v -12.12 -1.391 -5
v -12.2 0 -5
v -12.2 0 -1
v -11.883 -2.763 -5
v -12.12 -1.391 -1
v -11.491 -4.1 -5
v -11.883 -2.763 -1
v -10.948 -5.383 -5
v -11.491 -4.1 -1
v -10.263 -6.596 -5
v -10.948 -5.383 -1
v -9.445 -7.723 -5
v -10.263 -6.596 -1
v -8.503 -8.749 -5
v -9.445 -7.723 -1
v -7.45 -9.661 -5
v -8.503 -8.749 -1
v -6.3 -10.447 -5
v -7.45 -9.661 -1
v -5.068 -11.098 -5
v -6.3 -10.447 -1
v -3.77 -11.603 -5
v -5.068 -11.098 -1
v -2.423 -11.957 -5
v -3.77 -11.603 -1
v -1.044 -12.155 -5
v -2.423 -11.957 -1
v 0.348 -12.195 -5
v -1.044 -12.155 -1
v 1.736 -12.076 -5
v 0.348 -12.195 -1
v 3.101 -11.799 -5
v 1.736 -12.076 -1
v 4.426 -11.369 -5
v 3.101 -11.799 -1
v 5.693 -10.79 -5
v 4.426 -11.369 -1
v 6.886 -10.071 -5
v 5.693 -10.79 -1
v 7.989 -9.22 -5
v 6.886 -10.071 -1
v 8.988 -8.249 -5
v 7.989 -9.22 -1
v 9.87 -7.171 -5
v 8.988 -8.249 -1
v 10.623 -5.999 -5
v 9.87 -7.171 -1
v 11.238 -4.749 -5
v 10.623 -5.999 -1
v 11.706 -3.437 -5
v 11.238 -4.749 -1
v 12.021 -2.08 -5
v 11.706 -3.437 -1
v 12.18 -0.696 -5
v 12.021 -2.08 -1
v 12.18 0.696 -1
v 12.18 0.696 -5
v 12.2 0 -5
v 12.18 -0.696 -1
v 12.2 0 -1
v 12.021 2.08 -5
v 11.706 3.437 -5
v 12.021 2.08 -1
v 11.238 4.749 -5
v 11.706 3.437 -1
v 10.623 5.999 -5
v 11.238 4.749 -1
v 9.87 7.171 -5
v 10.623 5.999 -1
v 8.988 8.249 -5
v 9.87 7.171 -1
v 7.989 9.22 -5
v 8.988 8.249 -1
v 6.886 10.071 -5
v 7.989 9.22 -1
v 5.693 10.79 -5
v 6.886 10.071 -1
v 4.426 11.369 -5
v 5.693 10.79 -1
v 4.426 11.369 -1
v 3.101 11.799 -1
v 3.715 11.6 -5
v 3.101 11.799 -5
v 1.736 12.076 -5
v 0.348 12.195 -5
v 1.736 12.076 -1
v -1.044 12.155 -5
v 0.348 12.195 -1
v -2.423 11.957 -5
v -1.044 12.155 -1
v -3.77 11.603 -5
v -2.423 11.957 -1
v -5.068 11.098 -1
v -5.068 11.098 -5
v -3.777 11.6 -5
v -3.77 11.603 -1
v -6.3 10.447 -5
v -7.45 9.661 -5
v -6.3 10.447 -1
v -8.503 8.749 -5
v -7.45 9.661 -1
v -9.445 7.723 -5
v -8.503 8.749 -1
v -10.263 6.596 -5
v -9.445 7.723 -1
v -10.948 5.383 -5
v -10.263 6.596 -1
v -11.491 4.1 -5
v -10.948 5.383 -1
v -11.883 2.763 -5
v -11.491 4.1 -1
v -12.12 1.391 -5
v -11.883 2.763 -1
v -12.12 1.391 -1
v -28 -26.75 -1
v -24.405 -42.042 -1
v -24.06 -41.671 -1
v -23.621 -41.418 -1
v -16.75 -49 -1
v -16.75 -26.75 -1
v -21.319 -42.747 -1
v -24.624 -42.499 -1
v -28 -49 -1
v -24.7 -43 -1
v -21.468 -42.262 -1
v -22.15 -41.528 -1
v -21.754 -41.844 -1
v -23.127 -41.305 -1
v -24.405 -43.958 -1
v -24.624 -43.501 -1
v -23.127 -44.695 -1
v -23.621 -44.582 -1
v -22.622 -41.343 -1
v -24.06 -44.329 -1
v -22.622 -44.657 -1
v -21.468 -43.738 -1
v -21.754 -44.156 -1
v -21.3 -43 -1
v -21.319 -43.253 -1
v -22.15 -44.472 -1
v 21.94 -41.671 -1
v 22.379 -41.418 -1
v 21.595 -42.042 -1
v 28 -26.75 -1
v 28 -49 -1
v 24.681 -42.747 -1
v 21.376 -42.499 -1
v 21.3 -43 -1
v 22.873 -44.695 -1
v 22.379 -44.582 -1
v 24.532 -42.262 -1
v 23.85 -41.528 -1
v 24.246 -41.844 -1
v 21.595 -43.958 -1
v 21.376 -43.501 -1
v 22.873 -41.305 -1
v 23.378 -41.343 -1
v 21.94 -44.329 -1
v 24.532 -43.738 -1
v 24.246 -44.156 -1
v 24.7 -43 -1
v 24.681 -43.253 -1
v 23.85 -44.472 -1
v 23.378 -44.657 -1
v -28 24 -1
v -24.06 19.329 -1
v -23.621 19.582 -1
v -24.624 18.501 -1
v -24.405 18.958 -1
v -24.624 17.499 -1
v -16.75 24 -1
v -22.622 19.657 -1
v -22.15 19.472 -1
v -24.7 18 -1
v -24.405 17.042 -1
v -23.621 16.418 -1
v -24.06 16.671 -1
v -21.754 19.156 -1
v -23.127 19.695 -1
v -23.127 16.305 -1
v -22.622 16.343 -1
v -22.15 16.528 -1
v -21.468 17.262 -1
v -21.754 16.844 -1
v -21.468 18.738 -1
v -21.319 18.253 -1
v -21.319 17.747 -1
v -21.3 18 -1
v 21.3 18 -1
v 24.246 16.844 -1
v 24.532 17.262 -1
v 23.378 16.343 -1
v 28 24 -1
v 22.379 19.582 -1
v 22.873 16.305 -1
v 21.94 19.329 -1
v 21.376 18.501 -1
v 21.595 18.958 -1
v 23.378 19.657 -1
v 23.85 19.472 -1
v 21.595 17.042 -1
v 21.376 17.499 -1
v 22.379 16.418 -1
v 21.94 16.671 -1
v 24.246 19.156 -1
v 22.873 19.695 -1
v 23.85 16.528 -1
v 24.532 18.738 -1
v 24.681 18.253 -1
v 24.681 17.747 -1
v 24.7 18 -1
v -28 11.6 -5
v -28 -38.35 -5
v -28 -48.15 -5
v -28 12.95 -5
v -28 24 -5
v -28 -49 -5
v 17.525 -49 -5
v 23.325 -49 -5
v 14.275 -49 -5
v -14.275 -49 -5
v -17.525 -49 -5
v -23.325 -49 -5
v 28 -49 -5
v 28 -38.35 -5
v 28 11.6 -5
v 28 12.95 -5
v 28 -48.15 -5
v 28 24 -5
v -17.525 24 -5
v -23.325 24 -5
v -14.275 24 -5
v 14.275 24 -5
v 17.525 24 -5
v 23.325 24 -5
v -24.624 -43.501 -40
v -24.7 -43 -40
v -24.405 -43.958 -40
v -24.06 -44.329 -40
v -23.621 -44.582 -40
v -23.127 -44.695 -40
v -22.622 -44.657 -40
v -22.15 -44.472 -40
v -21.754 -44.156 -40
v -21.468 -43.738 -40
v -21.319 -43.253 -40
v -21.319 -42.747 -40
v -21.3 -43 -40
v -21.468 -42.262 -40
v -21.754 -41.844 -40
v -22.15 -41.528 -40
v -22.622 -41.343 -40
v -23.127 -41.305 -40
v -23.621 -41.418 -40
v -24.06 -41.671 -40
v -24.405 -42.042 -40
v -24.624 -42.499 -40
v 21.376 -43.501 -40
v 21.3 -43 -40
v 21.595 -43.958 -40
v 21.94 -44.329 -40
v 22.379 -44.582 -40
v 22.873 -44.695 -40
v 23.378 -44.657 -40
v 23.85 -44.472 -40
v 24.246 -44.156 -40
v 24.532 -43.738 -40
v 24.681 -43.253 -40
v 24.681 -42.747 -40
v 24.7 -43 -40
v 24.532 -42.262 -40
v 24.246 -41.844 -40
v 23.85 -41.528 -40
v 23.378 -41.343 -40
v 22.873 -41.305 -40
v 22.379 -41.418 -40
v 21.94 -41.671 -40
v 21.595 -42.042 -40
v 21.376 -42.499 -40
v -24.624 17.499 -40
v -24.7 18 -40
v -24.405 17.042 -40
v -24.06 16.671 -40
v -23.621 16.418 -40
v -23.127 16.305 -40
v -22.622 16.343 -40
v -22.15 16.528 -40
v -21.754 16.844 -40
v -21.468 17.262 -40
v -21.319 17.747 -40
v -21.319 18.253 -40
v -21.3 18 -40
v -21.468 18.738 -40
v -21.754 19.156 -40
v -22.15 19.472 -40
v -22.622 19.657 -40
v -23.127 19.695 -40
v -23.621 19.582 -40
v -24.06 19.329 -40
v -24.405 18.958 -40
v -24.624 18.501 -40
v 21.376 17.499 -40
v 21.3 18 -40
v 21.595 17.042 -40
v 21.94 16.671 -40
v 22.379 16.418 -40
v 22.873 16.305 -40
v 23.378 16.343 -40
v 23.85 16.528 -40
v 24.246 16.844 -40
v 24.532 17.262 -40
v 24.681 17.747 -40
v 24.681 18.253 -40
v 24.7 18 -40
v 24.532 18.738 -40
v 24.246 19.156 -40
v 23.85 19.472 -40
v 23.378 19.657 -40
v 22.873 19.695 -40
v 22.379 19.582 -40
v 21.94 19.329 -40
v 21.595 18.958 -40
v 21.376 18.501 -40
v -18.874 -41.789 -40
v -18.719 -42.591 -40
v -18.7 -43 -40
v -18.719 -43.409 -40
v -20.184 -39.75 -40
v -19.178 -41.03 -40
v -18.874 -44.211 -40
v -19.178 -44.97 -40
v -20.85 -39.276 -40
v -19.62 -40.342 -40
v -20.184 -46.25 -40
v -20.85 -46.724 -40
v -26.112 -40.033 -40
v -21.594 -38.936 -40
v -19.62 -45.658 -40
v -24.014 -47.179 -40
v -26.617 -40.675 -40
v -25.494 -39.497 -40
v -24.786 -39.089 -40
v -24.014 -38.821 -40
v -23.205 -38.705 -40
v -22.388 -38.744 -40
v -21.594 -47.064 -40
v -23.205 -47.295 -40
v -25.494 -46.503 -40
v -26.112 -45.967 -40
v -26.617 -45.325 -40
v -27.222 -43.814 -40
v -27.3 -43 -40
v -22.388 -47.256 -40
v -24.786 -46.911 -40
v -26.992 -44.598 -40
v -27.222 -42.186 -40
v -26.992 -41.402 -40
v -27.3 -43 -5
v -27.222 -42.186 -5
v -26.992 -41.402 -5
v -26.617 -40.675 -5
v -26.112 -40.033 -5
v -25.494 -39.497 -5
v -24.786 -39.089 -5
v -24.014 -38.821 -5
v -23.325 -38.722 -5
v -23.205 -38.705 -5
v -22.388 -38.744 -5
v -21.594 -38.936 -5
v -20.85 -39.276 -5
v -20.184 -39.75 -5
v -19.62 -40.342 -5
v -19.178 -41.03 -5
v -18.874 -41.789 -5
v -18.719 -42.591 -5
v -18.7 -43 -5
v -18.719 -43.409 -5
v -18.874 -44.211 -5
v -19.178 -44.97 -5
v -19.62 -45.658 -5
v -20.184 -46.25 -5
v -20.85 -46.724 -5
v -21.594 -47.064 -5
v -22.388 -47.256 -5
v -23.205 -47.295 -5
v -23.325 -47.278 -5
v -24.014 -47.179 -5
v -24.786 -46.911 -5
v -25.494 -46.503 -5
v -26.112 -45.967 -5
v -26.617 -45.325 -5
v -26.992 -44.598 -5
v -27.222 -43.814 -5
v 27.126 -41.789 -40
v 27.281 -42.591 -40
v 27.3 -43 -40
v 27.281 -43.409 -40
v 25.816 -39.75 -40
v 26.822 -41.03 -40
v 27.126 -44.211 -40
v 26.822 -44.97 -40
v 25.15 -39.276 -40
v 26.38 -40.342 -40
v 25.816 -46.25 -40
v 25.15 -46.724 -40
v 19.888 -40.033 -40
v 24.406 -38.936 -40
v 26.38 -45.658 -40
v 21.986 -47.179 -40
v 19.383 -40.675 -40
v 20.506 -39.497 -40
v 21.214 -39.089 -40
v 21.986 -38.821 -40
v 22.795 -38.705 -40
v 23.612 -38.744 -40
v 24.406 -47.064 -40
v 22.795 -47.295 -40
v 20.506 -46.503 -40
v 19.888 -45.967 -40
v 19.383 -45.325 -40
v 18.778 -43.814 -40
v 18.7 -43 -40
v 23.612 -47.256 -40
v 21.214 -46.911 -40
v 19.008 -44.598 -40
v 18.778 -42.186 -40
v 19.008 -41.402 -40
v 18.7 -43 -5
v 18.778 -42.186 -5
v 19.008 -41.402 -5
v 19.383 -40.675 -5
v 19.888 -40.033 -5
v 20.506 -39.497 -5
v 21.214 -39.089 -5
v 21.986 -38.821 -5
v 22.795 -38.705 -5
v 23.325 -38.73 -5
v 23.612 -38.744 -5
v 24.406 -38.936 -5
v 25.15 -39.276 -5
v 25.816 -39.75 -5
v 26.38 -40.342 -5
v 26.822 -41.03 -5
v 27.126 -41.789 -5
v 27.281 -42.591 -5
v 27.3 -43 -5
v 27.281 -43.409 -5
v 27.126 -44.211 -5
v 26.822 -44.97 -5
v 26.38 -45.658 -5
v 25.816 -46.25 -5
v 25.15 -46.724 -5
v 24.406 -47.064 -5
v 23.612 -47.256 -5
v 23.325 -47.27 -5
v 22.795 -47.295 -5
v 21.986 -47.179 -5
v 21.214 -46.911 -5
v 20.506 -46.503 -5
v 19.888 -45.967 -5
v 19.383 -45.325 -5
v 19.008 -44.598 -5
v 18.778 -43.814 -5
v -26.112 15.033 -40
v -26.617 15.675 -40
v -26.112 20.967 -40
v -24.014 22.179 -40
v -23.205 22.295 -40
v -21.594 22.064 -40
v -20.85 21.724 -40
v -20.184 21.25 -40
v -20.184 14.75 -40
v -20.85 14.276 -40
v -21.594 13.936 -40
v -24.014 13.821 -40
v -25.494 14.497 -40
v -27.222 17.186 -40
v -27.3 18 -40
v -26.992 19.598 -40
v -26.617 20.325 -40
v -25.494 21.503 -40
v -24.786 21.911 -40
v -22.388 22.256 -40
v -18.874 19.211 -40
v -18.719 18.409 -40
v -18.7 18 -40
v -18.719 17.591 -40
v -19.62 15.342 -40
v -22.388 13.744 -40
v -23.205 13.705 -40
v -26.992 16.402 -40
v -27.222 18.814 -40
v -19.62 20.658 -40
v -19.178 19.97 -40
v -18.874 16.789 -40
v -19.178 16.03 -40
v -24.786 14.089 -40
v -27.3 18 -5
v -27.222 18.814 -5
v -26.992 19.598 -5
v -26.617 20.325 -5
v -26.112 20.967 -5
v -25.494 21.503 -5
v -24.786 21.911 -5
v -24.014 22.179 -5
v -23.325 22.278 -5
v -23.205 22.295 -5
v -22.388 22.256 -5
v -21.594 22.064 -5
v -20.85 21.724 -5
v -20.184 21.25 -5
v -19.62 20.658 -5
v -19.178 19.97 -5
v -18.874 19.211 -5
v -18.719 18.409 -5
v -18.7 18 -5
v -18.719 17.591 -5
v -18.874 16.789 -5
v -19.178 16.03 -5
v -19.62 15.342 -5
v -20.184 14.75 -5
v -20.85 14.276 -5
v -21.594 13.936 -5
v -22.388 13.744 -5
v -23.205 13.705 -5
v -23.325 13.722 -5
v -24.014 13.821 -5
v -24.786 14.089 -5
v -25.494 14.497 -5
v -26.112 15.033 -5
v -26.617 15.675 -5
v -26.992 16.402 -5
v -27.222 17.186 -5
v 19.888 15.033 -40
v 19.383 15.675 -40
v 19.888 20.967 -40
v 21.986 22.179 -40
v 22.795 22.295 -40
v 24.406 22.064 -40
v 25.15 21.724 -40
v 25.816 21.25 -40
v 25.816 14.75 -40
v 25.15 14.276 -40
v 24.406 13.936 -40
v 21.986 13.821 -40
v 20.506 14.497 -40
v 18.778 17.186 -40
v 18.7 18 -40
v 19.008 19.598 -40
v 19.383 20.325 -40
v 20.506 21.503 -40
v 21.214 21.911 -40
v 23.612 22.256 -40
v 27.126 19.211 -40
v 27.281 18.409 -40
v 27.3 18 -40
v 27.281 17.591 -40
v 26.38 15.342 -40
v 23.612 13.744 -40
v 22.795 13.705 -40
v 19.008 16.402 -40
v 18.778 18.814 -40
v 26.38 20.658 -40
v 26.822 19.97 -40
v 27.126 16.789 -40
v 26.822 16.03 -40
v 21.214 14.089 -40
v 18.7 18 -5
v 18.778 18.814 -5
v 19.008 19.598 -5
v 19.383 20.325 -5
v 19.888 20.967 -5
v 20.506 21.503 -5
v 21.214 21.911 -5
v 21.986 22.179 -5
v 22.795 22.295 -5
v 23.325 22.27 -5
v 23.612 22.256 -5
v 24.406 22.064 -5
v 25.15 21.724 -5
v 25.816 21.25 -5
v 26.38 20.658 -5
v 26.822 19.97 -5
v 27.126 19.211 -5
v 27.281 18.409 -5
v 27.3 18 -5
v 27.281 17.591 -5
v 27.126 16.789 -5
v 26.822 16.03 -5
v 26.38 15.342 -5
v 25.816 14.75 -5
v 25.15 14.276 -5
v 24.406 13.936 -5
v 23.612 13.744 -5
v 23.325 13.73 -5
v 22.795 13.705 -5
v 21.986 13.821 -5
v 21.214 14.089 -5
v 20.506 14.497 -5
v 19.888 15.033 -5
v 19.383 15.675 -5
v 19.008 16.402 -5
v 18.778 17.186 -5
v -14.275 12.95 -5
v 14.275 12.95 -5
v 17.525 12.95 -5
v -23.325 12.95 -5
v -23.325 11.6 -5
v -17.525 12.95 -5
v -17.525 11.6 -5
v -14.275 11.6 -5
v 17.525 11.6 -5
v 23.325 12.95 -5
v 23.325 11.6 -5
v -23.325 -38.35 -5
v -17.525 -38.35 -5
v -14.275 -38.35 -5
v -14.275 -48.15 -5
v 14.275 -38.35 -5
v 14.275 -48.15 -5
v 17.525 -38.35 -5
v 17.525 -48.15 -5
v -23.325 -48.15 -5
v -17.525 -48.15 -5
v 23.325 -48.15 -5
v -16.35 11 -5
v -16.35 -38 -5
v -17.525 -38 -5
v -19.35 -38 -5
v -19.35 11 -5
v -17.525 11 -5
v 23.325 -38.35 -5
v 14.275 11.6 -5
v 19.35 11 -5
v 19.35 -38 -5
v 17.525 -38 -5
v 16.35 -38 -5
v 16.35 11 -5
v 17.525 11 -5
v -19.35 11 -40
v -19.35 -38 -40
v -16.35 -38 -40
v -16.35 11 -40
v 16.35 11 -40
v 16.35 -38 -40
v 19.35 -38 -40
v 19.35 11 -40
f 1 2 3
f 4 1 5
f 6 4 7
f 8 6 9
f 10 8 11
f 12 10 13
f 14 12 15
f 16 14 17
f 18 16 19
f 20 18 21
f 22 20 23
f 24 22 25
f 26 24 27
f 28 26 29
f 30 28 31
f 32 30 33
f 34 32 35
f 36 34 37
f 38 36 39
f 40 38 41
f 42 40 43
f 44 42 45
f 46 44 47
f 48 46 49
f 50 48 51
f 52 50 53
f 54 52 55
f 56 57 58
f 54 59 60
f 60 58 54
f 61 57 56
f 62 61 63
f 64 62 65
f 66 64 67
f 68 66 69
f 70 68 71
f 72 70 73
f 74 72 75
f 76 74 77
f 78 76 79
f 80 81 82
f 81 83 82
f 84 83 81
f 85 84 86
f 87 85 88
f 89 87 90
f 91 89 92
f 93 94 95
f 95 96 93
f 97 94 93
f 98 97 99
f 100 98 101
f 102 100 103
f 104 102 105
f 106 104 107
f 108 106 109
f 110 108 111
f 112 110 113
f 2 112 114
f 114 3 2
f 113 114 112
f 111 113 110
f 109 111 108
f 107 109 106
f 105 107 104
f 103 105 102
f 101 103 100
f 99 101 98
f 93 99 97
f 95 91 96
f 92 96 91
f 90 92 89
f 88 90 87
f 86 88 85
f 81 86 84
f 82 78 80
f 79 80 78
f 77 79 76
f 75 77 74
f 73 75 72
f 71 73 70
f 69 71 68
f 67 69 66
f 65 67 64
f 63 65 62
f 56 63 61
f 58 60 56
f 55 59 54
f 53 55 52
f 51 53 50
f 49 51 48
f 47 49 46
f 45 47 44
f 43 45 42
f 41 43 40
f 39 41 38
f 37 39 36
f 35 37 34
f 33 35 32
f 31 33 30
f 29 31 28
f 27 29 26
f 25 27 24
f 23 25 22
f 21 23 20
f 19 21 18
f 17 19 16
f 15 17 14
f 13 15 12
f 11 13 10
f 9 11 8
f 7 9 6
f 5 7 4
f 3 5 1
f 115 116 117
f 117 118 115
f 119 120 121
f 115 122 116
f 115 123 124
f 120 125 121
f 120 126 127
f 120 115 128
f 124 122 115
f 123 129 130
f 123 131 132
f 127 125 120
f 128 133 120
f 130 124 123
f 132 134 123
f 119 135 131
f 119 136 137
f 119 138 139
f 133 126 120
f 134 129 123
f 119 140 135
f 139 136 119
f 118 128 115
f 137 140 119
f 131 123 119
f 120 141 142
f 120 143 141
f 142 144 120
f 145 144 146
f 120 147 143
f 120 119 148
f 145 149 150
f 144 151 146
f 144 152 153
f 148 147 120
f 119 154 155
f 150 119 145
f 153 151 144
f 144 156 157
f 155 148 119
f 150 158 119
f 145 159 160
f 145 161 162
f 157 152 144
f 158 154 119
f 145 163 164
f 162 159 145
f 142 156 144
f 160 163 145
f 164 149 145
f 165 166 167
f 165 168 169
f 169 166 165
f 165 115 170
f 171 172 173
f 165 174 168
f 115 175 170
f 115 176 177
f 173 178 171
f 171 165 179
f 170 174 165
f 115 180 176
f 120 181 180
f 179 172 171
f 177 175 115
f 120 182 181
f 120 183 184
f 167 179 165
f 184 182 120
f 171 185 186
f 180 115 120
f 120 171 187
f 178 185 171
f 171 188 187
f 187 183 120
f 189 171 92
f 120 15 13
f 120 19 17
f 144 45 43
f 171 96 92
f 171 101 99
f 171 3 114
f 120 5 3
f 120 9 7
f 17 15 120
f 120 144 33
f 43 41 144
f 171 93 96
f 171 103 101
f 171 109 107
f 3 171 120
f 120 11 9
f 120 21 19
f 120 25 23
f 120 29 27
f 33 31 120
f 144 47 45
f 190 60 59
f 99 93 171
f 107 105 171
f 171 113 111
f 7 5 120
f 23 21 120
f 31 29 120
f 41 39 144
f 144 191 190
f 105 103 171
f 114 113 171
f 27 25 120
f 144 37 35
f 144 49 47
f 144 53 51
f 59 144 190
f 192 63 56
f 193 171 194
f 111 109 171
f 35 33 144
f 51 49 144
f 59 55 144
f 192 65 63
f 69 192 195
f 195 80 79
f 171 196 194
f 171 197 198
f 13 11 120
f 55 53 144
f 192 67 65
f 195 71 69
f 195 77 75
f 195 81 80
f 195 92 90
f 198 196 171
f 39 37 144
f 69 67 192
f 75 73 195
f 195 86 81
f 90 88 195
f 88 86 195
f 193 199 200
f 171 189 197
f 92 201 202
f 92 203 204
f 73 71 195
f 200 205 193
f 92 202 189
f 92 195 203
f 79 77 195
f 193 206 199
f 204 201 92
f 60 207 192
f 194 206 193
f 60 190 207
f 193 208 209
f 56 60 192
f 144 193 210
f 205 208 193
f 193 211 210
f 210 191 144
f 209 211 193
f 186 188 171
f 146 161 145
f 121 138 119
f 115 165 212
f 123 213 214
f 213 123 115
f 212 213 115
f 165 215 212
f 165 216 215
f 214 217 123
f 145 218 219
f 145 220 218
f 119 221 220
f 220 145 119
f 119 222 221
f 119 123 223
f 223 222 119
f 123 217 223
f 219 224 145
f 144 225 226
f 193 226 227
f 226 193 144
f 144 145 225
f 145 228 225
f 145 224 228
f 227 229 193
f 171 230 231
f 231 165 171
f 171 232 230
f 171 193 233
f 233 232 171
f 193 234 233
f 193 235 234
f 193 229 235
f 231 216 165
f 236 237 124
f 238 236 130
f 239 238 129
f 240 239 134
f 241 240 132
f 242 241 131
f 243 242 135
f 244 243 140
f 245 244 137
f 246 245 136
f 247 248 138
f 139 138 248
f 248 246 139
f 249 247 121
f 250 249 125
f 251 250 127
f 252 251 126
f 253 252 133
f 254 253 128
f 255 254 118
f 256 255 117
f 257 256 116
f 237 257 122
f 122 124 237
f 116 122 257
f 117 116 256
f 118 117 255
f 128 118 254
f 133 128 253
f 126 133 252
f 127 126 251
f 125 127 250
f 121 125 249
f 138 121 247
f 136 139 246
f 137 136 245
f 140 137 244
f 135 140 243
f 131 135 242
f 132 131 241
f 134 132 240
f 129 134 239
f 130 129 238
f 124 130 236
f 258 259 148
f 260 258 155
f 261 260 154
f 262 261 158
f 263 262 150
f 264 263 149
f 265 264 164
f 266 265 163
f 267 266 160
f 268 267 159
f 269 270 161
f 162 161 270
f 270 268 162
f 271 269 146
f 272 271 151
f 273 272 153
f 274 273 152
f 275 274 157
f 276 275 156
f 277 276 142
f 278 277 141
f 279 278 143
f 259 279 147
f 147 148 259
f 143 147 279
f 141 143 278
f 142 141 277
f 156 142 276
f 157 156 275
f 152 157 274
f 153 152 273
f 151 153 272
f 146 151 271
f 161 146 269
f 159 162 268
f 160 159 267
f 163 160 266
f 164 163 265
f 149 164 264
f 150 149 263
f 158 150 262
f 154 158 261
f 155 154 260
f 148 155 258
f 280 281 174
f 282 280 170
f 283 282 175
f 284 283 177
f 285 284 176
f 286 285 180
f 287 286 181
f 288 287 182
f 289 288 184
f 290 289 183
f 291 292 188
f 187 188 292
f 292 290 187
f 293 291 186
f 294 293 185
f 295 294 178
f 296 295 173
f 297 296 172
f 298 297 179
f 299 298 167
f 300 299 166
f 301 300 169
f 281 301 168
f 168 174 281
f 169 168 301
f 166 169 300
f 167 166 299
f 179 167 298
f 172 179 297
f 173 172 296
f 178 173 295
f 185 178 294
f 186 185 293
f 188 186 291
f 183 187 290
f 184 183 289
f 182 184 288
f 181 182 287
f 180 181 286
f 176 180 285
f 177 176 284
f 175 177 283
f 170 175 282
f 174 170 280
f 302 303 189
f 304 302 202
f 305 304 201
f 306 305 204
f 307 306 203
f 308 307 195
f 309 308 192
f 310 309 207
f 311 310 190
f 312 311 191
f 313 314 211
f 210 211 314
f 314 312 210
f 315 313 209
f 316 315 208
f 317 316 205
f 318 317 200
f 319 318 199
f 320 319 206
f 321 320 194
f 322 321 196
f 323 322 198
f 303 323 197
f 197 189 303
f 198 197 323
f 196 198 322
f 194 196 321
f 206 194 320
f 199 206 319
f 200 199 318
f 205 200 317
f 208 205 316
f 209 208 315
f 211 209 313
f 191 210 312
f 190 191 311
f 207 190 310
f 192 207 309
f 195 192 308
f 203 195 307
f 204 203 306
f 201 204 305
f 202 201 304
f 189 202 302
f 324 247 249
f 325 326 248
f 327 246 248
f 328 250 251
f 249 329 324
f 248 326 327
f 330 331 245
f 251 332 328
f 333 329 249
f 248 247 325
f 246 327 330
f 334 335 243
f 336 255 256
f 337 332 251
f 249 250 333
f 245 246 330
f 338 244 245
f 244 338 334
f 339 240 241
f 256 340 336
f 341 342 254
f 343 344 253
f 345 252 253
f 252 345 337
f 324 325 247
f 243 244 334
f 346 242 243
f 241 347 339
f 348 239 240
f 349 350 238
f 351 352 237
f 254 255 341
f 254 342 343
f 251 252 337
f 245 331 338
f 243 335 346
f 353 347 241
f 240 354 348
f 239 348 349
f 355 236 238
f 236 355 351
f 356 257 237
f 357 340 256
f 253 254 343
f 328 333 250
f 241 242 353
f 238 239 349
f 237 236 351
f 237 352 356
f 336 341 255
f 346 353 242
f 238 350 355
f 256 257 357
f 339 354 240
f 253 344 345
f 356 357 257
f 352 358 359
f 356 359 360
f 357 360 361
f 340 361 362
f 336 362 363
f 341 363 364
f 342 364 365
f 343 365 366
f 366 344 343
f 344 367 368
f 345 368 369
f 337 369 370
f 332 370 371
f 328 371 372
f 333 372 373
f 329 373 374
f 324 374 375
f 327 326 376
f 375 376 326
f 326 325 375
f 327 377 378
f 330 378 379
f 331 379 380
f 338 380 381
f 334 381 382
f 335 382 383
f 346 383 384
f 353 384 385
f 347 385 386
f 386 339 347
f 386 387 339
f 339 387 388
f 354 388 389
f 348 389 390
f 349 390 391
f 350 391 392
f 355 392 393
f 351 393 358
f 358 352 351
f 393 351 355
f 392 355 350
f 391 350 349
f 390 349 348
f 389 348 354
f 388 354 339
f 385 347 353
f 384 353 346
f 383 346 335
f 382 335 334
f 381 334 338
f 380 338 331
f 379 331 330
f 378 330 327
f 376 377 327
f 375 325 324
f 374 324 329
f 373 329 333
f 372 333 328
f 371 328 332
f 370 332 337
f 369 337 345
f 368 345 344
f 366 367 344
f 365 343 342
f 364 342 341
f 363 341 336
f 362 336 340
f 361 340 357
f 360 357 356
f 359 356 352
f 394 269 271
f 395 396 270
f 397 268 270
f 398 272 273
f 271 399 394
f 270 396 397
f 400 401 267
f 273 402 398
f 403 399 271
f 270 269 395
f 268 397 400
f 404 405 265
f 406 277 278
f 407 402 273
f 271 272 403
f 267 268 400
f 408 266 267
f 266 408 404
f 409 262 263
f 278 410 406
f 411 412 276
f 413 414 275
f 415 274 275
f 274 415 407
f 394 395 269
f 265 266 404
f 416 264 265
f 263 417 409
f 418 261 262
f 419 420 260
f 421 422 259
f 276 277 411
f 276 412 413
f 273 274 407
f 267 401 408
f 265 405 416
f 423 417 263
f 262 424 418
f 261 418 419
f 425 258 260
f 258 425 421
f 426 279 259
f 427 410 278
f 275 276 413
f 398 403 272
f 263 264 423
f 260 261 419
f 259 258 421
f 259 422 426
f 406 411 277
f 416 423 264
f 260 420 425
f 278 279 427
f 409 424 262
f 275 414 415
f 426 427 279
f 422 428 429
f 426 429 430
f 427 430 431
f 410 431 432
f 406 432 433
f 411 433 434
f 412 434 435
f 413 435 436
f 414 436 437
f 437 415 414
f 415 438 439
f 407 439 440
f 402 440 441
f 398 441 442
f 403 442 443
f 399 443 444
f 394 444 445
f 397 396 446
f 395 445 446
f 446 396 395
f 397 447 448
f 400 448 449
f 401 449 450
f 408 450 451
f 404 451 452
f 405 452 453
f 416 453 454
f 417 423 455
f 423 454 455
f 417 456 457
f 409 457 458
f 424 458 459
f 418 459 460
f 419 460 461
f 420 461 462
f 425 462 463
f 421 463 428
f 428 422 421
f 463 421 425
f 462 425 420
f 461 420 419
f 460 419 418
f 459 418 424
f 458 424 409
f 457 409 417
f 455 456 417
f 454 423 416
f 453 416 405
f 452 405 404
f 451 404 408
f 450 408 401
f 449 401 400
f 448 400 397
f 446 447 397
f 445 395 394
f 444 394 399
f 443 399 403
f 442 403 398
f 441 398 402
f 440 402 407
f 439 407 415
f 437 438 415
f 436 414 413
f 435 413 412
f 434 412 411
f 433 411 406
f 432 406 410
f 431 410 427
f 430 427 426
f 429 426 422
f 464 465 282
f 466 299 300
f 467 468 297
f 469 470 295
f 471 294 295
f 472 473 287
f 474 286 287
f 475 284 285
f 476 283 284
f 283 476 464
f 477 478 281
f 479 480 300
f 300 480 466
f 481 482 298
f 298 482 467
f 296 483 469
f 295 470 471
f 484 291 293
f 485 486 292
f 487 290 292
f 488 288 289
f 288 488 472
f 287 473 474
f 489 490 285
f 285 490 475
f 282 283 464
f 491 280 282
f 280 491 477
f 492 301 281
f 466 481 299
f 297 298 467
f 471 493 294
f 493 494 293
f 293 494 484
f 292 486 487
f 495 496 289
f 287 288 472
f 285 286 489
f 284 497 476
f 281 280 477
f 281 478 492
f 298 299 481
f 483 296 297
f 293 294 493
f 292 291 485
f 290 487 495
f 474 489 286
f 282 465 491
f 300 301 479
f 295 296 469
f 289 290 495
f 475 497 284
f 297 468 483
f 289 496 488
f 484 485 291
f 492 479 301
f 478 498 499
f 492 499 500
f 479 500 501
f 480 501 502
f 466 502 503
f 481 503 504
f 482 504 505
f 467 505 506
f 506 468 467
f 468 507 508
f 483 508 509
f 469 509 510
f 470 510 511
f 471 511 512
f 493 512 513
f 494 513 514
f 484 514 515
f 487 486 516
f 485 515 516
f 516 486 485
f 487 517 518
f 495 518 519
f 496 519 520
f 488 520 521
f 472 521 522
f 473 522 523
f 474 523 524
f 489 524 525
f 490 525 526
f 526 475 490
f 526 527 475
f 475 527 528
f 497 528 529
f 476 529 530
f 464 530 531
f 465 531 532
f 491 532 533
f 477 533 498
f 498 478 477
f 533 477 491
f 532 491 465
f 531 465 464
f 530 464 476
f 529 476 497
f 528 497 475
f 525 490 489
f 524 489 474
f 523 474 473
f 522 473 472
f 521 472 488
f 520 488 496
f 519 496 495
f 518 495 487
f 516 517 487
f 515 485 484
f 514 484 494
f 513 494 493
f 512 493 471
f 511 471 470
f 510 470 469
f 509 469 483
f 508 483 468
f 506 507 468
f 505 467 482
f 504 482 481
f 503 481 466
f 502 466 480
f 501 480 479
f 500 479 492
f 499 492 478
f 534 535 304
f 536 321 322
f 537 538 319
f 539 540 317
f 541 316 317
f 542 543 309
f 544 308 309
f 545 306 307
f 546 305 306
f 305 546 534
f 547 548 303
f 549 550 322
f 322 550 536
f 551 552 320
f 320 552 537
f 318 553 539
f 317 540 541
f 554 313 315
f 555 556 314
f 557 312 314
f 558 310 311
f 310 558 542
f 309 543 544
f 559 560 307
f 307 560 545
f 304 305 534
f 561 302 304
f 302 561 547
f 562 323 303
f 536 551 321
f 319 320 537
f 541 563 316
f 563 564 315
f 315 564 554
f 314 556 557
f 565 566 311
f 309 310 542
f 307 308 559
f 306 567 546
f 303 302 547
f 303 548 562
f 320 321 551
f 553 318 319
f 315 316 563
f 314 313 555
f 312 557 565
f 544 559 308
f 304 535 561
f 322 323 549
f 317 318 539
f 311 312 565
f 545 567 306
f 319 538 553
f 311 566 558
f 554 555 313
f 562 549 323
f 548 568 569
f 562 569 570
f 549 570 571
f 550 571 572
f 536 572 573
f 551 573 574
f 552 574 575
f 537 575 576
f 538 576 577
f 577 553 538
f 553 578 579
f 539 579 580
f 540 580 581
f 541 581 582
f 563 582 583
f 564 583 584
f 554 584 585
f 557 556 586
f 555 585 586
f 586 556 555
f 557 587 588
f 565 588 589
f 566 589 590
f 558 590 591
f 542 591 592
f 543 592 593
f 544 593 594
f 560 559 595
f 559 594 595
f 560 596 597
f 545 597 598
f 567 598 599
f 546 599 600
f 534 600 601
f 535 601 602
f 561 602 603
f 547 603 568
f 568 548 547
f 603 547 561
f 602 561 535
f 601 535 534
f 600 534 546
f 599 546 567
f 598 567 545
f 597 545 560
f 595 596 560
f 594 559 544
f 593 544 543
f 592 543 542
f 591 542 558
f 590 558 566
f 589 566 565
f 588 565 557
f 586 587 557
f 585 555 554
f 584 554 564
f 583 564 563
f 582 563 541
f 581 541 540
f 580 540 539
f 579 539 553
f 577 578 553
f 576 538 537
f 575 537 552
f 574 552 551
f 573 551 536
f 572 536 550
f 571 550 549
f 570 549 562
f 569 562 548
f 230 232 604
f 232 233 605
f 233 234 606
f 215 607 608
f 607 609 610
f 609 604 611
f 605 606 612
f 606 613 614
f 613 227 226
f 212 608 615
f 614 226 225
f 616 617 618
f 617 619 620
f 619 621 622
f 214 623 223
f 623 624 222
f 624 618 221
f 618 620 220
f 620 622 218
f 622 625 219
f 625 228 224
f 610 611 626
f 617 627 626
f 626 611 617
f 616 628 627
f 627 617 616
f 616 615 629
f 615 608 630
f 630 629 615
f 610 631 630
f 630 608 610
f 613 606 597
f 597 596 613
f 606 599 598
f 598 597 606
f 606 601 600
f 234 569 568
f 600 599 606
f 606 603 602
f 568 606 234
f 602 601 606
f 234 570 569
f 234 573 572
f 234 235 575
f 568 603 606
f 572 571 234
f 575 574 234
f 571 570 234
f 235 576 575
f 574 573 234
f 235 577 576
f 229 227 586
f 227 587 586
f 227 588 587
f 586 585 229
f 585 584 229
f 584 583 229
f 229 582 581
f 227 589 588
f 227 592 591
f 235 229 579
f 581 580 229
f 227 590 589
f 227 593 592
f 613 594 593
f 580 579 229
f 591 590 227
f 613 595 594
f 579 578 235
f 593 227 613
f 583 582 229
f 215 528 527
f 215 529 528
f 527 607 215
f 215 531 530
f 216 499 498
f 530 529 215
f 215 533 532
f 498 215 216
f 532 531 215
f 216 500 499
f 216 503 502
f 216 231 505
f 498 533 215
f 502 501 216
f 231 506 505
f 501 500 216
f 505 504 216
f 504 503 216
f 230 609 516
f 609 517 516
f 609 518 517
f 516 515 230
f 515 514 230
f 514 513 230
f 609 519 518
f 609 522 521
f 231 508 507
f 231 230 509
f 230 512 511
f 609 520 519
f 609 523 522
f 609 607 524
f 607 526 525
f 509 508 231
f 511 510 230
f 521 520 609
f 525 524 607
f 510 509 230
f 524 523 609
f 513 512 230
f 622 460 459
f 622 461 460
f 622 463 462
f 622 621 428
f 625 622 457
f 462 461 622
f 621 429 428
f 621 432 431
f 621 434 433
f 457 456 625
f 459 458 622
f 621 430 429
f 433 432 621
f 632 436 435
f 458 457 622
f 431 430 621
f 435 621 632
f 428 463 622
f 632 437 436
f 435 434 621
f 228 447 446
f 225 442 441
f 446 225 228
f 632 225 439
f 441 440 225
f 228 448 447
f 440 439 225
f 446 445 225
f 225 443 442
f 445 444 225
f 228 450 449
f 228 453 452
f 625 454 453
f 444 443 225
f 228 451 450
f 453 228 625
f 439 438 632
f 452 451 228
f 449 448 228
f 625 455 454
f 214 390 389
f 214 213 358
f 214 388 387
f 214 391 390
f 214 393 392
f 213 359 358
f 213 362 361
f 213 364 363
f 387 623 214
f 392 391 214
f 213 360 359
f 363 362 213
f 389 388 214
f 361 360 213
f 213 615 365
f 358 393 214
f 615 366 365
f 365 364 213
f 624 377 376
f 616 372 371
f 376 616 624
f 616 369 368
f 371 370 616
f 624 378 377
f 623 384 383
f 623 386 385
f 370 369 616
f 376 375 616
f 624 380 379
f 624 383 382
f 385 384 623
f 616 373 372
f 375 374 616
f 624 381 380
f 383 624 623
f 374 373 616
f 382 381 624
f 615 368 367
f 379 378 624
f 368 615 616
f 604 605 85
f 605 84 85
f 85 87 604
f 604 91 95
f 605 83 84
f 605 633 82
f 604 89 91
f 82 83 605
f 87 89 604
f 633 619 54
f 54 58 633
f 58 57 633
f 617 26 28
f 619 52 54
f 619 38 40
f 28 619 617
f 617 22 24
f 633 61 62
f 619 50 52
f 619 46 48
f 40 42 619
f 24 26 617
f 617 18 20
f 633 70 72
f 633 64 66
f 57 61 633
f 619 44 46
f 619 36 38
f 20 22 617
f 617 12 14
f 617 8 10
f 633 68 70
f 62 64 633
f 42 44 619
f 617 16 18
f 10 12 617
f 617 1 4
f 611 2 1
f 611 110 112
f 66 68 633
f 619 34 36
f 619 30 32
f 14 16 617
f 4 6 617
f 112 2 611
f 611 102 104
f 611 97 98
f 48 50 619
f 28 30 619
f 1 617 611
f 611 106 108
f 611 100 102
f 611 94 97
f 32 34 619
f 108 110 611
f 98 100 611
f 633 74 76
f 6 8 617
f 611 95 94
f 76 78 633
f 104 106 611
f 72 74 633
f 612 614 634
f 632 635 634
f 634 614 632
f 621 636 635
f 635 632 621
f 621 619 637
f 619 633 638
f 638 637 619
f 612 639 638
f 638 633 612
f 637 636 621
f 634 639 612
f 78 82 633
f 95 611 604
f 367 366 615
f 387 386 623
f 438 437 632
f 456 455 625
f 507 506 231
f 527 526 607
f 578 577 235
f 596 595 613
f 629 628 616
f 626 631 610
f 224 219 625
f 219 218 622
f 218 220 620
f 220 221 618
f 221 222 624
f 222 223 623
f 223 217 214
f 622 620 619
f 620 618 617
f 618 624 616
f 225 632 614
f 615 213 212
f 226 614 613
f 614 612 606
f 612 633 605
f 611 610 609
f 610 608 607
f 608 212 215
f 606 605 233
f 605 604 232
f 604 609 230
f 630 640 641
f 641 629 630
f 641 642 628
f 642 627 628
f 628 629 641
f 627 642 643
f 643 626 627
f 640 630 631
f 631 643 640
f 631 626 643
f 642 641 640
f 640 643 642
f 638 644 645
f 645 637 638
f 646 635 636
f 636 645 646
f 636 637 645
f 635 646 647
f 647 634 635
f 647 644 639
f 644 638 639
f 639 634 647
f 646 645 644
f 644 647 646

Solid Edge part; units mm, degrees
sketch "Sketch1" plane through (0, 0, -5) normal (0, 0, 1) x (1, 0, 0)
  line L0 (-28, -49) -> (28, -49)
  line L1 (28, -49) -> (28, 24)
  line L2 (28, 24) -> (-28, 24)
  line L3 (-28, 24) -> (-28, -49)
  circle A0 centre (0, 0) radius 12.2
  circle A1 centre (-23, -43) radius 1.7
  circle A2 centre (23, -43) radius 1.7
  circle A3 centre (-23, 18) radius 1.7
  circle A4 centre (23, 18) radius 1.7
extrude "ExtrudedProtrusion_1" add sketch "Sketch1" along normal blind 4
sketch "Sketch2" plane through (0, 0, -40) normal (0, 0, 1) x (1, 0, 0)
  circle A0 centre (-23, -43) radius 4.3
  circle A1 centre (-23, -43) radius 1.7
extrude "ExtrudedProtrusion_2" add sketch "Sketch2" along normal blind 35
sketch "Sketch3" plane through (0, 0, -40) normal (0, 0, 1) x (1, 0, 0)
  circle A0 centre (23, -43) radius 4.3
  circle A1 centre (23, -43) radius 1.7
extrude "ExtrudedProtrusion_3" add sketch "Sketch3" along normal blind 35
sketch "Sketch4" plane through (0, 0, -40) normal (0, 0, 1) x (1, 0, 0)
  circle A0 centre (-23, 18) radius 4.3
  circle A1 centre (-23, 18) radius 1.7
extrude "ExtrudedProtrusion_4" add sketch "Sketch4" along normal blind 35
sketch "Sketch5" plane through (0, 0, -40) normal (0, 0, 1) x (1, 0, 0)
  circle A0 centre (23, 18) radius 4.3
  circle A1 centre (23, 18) radius 1.7
extrude "ExtrudedProtrusion_5" add sketch "Sketch5" along normal blind 35
sketch "Sketch6" plane through (0, 0, -40) normal (0, 0, 1) x (1, 0, 0)
  line L0 (-19.35, -38) -> (-16.35, -38)
  line L1 (-16.35, -38) -> (-16.35, 11)
  line L2 (-16.35, 11) -> (-19.35, 11)
  line L3 (-19.35, 11) -> (-19.35, -38)
extrude "ExtrudedProtrusion_6" add sketch "Sketch6" along normal blind 35
sketch "Sketch7" plane through (0, 0, -40) normal (0, 0, 1) x (1, 0, 0)
  line L0 (16.35, -38) -> (19.35, -38)
  line L1 (19.35, -38) -> (19.35, 11)
  line L2 (19.35, 11) -> (16.35, 11)
  line L3 (16.35, 11) -> (16.35, -38)
extrude "ExtrudedProtrusion_7" add sketch "Sketch7" along normal blind 35
